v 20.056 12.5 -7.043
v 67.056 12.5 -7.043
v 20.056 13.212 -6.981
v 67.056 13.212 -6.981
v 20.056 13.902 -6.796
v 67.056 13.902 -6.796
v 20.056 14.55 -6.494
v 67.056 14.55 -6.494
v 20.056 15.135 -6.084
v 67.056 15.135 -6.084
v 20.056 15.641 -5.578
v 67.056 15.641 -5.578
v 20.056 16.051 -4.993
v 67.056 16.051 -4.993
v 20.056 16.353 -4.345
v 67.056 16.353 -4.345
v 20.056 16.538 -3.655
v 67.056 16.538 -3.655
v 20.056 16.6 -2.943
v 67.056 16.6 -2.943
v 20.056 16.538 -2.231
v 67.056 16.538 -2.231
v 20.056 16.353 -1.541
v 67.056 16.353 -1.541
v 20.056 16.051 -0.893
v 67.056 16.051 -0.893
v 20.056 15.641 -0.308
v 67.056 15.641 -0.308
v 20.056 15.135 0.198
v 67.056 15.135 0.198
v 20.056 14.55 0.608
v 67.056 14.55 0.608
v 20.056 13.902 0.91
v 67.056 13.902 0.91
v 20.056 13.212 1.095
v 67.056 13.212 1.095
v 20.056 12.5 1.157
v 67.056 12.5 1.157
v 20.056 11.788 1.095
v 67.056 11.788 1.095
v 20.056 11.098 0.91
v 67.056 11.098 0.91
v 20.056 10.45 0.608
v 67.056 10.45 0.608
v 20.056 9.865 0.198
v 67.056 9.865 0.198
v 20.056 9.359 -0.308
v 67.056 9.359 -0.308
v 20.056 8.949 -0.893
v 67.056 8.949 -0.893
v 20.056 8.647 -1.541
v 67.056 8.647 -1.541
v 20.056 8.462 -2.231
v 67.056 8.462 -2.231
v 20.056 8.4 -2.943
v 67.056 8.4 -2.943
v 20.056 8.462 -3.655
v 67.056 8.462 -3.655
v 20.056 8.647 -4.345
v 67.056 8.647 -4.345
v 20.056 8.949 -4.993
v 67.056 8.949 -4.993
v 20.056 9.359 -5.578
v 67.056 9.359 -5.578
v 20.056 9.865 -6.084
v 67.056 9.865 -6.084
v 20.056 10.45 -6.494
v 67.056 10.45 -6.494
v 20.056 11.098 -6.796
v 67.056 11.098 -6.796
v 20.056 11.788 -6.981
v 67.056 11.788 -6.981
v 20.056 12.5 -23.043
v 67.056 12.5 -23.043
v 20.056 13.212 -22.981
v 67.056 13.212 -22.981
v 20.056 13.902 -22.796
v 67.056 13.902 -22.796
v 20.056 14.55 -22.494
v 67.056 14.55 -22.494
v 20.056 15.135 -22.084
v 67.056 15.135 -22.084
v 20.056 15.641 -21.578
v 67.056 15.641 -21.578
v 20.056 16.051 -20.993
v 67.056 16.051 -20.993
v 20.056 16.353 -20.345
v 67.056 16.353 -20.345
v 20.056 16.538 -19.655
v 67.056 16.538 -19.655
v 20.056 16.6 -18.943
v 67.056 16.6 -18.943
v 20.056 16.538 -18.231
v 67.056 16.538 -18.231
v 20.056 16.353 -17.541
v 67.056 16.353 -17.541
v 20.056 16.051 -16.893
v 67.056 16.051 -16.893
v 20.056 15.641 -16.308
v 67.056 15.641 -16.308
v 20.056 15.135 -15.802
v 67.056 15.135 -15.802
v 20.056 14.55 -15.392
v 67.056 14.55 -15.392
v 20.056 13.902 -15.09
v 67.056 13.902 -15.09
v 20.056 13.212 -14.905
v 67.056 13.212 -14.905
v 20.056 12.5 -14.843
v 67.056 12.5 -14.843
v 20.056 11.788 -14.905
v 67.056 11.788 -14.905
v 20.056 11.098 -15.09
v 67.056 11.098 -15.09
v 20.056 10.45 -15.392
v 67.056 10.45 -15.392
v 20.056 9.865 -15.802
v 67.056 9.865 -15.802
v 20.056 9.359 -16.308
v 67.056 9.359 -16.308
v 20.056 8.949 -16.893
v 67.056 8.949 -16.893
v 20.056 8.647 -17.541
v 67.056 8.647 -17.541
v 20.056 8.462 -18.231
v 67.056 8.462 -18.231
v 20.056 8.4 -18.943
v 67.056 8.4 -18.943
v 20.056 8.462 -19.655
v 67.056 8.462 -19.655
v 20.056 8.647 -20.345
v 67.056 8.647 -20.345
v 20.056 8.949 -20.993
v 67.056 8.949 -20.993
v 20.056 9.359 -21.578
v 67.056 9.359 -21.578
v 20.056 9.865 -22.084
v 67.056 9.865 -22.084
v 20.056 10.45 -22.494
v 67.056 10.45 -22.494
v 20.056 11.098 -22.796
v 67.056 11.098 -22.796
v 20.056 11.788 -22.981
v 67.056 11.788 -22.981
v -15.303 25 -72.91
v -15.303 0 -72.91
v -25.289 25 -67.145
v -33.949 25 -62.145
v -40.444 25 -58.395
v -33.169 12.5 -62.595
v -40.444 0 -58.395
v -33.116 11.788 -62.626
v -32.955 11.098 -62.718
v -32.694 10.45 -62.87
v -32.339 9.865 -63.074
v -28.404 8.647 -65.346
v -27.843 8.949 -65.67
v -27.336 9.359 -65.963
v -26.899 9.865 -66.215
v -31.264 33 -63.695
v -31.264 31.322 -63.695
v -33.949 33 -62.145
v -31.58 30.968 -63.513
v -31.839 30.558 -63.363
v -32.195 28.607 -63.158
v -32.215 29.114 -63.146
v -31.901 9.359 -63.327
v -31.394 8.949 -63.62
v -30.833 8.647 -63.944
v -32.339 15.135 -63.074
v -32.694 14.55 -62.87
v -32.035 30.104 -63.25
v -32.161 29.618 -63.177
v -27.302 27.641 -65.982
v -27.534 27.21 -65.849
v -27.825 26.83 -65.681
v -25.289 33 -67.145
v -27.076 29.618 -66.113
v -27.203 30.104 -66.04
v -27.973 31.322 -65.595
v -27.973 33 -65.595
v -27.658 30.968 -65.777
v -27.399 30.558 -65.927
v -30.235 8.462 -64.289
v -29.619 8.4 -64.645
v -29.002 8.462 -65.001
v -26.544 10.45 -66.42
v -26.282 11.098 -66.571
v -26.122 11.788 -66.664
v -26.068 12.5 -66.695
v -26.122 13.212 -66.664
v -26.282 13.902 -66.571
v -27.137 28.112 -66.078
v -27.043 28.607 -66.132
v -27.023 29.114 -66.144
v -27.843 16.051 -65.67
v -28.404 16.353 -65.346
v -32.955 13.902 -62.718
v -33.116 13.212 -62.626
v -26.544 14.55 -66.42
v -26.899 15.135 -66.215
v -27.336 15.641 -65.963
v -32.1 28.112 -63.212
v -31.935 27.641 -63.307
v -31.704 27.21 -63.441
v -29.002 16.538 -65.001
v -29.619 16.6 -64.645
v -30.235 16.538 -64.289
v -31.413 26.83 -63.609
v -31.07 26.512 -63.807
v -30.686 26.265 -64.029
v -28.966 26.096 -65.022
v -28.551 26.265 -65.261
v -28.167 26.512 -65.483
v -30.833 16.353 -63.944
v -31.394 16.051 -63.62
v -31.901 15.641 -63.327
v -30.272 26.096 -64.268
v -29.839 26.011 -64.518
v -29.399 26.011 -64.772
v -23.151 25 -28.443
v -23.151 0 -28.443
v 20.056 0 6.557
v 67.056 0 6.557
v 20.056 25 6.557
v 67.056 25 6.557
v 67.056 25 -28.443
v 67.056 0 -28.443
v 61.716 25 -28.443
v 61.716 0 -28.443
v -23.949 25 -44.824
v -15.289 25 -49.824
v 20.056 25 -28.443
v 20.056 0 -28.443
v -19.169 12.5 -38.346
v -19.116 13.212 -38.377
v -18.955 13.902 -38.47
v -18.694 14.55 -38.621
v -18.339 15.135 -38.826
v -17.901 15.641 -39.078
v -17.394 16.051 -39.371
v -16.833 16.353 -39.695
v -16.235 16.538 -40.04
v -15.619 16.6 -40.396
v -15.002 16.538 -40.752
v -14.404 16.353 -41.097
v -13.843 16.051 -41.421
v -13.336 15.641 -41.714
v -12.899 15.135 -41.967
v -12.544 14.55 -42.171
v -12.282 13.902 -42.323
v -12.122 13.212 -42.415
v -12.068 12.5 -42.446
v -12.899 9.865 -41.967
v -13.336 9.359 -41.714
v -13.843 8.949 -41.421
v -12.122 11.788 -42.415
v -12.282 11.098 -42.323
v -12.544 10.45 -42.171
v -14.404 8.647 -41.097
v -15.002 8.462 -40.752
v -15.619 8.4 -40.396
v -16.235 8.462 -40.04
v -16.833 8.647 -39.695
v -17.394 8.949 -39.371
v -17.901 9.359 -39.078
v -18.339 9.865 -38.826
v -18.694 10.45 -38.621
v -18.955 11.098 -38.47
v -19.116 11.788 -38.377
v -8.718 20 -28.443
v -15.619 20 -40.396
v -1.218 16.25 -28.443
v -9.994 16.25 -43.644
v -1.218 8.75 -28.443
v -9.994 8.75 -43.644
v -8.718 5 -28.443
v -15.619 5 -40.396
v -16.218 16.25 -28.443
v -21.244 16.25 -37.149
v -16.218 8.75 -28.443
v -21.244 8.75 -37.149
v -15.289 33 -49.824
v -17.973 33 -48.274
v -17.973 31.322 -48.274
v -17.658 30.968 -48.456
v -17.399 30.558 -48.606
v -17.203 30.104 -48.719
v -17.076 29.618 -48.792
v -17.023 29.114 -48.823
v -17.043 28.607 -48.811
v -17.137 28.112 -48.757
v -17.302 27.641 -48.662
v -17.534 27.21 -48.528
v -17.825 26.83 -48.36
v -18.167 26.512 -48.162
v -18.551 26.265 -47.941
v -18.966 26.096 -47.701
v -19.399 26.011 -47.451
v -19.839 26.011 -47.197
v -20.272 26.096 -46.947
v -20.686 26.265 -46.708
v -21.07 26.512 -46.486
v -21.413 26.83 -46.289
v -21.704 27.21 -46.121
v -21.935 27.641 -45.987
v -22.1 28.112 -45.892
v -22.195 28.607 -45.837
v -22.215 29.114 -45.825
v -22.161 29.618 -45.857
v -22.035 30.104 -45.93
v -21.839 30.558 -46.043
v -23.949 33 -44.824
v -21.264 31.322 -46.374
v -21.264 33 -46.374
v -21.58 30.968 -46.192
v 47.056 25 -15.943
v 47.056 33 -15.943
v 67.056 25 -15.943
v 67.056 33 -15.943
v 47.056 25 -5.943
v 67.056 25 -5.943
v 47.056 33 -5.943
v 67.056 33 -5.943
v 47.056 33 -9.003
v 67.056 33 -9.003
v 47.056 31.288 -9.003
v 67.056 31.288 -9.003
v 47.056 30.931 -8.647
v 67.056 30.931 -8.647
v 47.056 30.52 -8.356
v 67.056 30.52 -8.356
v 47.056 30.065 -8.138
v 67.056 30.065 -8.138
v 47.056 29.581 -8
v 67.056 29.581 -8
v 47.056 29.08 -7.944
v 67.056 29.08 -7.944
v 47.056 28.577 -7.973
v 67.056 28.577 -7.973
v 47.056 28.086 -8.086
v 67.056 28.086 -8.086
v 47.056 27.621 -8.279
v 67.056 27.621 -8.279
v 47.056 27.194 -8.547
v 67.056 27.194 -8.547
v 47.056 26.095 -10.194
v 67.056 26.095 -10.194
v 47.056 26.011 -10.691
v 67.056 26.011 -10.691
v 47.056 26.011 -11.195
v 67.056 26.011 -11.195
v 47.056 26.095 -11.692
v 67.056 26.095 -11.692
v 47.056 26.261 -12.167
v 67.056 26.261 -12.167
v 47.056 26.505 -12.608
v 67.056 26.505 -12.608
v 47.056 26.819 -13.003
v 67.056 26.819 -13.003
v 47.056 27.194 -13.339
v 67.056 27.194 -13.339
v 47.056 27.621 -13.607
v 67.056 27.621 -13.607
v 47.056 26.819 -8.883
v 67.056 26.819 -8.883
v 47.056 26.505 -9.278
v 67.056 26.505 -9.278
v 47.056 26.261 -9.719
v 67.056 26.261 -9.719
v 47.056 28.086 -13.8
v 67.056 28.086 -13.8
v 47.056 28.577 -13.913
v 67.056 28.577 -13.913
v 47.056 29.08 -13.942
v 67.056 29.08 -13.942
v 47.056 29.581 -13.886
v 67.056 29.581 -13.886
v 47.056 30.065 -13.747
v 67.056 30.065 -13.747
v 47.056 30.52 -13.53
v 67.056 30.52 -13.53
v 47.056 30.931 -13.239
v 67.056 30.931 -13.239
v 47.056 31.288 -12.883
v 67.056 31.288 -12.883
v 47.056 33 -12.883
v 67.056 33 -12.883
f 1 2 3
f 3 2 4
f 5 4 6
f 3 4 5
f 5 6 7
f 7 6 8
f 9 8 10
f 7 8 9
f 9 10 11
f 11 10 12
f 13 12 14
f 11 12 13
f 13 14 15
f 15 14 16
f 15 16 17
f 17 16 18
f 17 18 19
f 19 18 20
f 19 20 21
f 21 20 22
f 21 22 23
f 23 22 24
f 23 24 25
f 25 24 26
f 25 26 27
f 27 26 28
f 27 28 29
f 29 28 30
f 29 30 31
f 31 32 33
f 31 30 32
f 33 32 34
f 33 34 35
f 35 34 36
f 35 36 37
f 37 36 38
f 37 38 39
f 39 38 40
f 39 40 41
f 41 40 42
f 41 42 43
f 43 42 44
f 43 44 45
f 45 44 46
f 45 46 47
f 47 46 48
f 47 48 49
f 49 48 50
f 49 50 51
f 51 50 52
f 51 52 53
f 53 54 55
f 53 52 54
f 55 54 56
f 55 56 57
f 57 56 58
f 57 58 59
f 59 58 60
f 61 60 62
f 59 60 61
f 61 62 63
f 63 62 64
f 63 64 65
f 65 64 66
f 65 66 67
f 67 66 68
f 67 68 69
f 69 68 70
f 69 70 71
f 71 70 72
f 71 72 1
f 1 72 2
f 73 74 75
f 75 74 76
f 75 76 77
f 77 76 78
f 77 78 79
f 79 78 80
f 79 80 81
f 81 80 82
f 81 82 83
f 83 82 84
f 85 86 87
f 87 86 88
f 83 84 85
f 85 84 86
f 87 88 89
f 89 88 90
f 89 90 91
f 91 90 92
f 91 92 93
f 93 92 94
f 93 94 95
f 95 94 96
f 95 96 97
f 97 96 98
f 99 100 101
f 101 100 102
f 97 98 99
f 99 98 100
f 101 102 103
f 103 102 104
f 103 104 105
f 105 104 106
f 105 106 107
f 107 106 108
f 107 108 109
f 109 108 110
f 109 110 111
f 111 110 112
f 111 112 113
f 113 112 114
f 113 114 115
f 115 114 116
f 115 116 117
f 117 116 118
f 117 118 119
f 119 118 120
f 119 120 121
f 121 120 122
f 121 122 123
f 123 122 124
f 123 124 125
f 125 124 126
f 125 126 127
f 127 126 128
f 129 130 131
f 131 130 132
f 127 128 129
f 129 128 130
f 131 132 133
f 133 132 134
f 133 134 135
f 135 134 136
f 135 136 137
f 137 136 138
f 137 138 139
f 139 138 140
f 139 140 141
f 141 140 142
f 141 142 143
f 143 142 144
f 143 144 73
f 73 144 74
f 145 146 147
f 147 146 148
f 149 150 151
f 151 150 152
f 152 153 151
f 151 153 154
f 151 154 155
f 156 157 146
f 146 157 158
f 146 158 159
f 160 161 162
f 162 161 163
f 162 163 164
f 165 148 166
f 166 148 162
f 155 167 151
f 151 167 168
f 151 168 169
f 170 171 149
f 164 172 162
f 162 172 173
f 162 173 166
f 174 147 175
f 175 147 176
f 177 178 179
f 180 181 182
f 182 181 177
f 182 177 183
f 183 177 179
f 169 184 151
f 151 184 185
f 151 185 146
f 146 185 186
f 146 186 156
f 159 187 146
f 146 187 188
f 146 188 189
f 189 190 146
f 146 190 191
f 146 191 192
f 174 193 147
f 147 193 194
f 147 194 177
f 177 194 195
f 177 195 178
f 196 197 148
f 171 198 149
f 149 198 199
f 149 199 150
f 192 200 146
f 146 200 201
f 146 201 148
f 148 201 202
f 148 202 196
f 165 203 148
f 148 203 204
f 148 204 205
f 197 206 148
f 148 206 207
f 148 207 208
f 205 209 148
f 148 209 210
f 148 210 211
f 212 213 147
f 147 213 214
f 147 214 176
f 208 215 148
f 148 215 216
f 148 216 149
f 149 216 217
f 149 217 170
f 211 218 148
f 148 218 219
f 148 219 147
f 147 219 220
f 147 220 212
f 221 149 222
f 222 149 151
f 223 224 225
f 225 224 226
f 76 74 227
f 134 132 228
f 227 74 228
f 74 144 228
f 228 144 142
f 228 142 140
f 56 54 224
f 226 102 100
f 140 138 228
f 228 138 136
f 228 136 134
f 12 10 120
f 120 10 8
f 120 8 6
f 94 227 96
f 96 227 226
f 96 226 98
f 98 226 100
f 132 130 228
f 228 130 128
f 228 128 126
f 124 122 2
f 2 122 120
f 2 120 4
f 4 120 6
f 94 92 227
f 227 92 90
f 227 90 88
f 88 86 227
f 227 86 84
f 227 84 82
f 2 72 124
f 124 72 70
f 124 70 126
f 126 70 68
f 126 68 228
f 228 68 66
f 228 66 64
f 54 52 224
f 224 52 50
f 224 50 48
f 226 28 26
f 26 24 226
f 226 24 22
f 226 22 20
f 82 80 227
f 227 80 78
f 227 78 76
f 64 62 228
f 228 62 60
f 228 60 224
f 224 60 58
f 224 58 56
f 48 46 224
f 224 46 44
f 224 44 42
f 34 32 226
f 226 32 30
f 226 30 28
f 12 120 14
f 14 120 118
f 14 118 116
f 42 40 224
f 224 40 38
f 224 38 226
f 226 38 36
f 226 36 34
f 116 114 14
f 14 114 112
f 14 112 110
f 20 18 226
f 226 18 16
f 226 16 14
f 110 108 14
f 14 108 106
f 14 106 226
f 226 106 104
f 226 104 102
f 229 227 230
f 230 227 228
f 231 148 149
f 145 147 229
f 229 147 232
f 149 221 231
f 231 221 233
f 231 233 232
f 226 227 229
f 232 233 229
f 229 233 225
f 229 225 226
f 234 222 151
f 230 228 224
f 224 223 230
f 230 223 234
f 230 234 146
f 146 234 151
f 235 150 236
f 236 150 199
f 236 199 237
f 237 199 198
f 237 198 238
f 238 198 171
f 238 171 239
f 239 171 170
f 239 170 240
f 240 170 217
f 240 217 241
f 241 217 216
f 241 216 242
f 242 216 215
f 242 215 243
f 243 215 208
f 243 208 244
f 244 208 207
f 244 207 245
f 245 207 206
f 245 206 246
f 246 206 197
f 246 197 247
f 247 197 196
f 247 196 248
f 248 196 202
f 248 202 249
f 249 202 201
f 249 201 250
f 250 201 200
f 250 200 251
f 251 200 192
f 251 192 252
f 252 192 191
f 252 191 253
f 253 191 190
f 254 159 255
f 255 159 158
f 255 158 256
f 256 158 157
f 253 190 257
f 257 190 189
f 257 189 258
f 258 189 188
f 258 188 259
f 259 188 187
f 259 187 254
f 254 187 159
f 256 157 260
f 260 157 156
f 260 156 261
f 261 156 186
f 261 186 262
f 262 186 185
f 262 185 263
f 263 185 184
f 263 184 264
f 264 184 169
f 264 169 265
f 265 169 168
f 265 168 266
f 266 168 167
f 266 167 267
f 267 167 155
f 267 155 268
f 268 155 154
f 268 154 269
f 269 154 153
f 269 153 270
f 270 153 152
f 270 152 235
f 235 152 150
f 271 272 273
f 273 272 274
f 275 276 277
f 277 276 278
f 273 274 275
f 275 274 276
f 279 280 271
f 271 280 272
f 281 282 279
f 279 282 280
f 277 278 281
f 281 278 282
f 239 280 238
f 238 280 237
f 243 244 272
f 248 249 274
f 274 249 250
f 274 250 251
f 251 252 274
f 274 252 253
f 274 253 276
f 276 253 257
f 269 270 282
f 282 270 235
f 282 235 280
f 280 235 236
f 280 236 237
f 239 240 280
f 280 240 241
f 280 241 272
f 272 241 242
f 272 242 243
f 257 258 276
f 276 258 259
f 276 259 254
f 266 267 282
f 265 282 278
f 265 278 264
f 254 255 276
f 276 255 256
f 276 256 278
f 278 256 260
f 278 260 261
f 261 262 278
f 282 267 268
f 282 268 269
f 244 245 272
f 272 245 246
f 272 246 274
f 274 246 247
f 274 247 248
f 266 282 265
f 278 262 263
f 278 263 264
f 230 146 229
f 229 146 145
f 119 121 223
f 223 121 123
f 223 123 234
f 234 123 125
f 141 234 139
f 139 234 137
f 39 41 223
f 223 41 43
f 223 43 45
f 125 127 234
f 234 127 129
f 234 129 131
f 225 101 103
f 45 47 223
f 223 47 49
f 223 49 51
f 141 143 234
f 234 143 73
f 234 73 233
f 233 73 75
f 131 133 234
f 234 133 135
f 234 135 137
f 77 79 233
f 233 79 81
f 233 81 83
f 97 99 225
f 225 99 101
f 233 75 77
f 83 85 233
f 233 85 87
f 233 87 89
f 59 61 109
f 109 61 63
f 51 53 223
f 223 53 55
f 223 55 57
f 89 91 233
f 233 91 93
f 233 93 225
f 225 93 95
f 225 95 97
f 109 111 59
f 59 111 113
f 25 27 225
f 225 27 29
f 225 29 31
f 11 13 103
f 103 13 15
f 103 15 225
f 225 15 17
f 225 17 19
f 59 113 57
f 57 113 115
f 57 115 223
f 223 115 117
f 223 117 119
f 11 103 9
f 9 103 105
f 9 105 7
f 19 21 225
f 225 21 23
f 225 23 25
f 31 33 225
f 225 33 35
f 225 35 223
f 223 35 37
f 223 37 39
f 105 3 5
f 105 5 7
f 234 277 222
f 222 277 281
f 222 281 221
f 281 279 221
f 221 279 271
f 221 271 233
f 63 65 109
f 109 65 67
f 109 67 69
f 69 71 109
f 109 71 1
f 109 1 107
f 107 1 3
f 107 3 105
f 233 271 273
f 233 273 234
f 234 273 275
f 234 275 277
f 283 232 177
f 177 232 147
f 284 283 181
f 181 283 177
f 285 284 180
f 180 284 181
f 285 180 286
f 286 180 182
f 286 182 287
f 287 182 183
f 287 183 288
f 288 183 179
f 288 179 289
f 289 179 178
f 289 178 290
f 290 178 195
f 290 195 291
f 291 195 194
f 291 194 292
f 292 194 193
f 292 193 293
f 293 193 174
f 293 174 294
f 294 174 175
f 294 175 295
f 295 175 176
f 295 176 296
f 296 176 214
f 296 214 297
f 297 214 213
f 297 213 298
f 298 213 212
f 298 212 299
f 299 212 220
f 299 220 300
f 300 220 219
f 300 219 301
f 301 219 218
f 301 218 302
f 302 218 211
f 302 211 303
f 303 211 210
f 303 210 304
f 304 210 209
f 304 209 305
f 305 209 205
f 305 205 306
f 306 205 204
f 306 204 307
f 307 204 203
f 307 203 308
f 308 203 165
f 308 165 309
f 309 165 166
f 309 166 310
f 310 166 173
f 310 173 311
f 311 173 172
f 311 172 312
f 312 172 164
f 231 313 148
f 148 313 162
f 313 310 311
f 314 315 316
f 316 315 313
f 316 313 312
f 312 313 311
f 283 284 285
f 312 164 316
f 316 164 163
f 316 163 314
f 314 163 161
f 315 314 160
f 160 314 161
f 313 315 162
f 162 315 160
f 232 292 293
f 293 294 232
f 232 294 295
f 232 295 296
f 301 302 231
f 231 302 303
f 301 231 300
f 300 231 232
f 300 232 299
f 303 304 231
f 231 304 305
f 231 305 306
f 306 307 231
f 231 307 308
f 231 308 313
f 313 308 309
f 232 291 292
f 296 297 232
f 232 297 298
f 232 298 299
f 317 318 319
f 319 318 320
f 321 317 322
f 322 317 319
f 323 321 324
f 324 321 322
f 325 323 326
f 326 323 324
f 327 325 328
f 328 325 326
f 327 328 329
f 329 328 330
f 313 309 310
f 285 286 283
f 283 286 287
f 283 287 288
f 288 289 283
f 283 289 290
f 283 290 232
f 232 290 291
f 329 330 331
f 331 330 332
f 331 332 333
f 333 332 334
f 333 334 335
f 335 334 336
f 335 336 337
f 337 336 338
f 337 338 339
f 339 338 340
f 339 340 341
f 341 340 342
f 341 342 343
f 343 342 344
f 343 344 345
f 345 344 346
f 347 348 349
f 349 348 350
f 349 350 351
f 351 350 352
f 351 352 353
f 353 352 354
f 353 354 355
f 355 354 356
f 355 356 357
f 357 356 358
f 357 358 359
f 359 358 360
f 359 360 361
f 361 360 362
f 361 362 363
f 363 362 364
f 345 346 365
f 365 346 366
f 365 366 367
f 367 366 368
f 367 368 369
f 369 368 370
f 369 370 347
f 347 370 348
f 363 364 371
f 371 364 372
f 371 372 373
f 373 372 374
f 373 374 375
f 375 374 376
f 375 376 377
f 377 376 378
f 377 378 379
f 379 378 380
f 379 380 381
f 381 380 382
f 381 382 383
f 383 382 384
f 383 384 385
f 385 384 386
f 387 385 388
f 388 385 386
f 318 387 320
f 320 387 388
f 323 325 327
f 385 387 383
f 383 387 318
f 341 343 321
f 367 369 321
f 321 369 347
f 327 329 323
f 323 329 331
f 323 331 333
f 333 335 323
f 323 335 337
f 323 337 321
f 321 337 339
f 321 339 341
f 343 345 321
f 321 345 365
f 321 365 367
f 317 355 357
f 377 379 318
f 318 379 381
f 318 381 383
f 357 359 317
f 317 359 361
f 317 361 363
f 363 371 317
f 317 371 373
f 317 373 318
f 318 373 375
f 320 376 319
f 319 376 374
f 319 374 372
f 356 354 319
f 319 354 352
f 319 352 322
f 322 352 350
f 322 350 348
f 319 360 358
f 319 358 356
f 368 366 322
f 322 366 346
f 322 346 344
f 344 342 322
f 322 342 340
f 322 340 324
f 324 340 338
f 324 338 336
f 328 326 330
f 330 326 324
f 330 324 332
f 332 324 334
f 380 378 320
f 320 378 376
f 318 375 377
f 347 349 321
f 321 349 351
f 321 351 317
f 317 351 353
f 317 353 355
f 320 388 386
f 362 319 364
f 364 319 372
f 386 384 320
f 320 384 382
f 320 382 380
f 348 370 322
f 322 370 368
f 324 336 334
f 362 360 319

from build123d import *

# Parameters (mm, degrees)
BOSS_EXTRUDE1_DEPTH = 25
SKETCH2_R           = 4.1
CUT_EXTRUDE1_DEPTH  = 132.176713612
SKETCH3_R           = 4.1
CUT_EXTRUDE2_DEPTH  = 126.40868204
CUT_EXTRUDE4_START  = -28
CUT_EXTRUDE4_DEPTH  = 98.40868204
CHAMFER1_SIZE       = 56
CUT_EXTRUDE5_DEPTH  = 103.163428306
BOSS_EXTRUDE2_DEPTH = 20
BOSS_EXTRUDE3_DEPTH = 20


with BuildPart() as part:
    # Sketch1 → Boss-Extrude1 (new body)
    with BuildSketch(Plane(origin=(0, 0, 0), x_dir=(1, 0, 0), z_dir=(0, 1, 0))):
        Polygon((-40.444096004, 58.394853086), (-2.944096004, -6.557052198), (67.055903996, -6.557052198), (67.055903996, 28.442947802), (5.716158034, 28.442947802), (-18.793460909, 70.894853086), align=None)
    extrude(amount=BOSS_EXTRUDE1_DEPTH)

    # Sketch2 → Cut-Extrude1 (cut, through all)
    with BuildSketch(Plane(origin=(67.055903996, 0, 0), x_dir=(0, 0, -1), z_dir=(1, 0, 0))):
        with Locations((2.942947802, 12.5)):
            Circle(SKETCH2_R)
        with Locations((18.942947802, 12.5)):
            Circle(SKETCH2_R)
    extrude(amount=-CUT_EXTRUDE1_DEPTH, mode=Mode.SUBTRACT)

    # Sketch3 → Cut-Extrude2 (cut, through all)
    with BuildSketch(Plane(origin=(-35.396737112, 0, -61.3089471), x_dir=(-0.8660254037844396, 0, 0.4999999999999984), z_dir=(-0.49999999999999833, 0, -0.8660254037844395))):
        with Locations((-6.671811971, 12.5)):
            Circle(SKETCH3_R)
    extrude(amount=-CUT_EXTRUDE2_DEPTH, mode=Mode.SUBTRACT)

    # Sketch5 → Cut-Extrude4 (cut, through all)
    with BuildSketch(Plane(origin=(-35.396737112, 0, -61.3089471), x_dir=(-0.8660254037844397, 0, 0.4999999999999983), z_dir=(-0.4999999999999982, 0, -0.8660254037844396)).offset(CUT_EXTRUDE4_START)):
        Polygon((-13.167002499, 16.25), (-13.167002499, 8.75), (-6.671811971, 5), (-0.176621442, 8.75), (-0.176621442, 16.25), (-6.671811971, 20), align=None)
    extrude(amount=-CUT_EXTRUDE4_DEPTH, mode=Mode.SUBTRACT)

    # Chamfer1
    # the kernel refuses this chamfer: 56 mm, written as the material it adds along each edge
    with BuildSketch(Plane(origin=(5.716158034, 0, -28.442947802), x_dir=(-0.5166440803046883, 0, -0.8562002652920185), z_dir=(0, 1, 0))) as chamfer1_piece_1_section:
        Polygon((CHAMFER1_SIZE * 0.999813220622, -CHAMFER1_SIZE * 0.0193267656127), (-CHAMFER1_SIZE * 0.516644080305, -CHAMFER1_SIZE * 0.856200265292), (0, 0), align=None)
    chamfer1_piece_1 = extrude(amount=25, mode=Mode.PRIVATE)
    chamfer1_piece_1 = split(chamfer1_piece_1, bisect_by=Plane(origin=(-4.727526646, 12.5, -79.015824019), z_dir=(0.49999999999999756, 0, 0.86602540378444)), keep=Keep.TOP, mode=Mode.PRIVATE)
    add(chamfer1_piece_1)

    # Sketch6 → Cut-Extrude5 (cut, through all)
    with BuildSketch(Plane.XZ):
        Polygon((20.055903996, 6.557052198), (20.055903996, -28.442947802), (-23.151355425, -28.442947802), (-2.944096004, 6.557052198), align=None)
    extrude(amount=-CUT_EXTRUDE5_DEPTH, mode=Mode.SUBTRACT)

    # Sketch7 → Boss-Extrude2 (add)
    with BuildSketch(Plane(origin=(-35.396737112, 0, -61.3089471), x_dir=(-0.86602540378444, 0, 0.49999999999999784), z_dir=(-0.49999999999999784, 0, -0.86602540378444))):
        with BuildLine():
            Line((-1.671811971, 33), (-1.671811971, 25))
            Line((-1.671811971, 25), (-11.671811971, 25))
            Line((-11.671811971, 25), (-11.671811971, 33))
            Line((-11.671811971, 33), (-8.571811971, 33))
            Line((-8.571811971, 33), (-8.571811971, 31.321637353))
            ThreePointArc((-8.571811971, 31.321637353), (-6.671811971, 26), (-4.771811971, 31.321637353))
            Line((-4.771811971, 31.321637353), (-4.771811971, 33))
            Line((-4.771811971, 33), (-1.671811971, 33))
        make_face()
    extrude(amount=-BOSS_EXTRUDE2_DEPTH)


with BuildPart() as body_2:
    # Sketch8 → Boss-Extrude3 (new body)
    with BuildSketch(Plane(origin=(67.055903996, 0, 0), x_dir=(0, 0, -1), z_dir=(1, 0, 0))):
        with BuildLine():
            Line((5.942947802, 33), (9.002583557, 33))
            Line((9.002583557, 33), (9.002583557, 31.288009309))
            ThreePointArc((9.002583557, 31.288009309), (10.942947802, 26), (12.883312047, 31.288009309))
            Line((12.883312047, 31.288009309), (12.883312047, 33))
            Line((12.883312047, 33), (15.942947802, 33))
            Line((15.942947802, 33), (15.942947802, 25))
            Line((15.942947802, 25), (5.942947802, 25))
            Line((5.942947802, 25), (5.942947802, 33))
        make_face()
    extrude(amount=-BOSS_EXTRUDE3_DEPTH)


solid = Compound([part.part, body_2.part])
